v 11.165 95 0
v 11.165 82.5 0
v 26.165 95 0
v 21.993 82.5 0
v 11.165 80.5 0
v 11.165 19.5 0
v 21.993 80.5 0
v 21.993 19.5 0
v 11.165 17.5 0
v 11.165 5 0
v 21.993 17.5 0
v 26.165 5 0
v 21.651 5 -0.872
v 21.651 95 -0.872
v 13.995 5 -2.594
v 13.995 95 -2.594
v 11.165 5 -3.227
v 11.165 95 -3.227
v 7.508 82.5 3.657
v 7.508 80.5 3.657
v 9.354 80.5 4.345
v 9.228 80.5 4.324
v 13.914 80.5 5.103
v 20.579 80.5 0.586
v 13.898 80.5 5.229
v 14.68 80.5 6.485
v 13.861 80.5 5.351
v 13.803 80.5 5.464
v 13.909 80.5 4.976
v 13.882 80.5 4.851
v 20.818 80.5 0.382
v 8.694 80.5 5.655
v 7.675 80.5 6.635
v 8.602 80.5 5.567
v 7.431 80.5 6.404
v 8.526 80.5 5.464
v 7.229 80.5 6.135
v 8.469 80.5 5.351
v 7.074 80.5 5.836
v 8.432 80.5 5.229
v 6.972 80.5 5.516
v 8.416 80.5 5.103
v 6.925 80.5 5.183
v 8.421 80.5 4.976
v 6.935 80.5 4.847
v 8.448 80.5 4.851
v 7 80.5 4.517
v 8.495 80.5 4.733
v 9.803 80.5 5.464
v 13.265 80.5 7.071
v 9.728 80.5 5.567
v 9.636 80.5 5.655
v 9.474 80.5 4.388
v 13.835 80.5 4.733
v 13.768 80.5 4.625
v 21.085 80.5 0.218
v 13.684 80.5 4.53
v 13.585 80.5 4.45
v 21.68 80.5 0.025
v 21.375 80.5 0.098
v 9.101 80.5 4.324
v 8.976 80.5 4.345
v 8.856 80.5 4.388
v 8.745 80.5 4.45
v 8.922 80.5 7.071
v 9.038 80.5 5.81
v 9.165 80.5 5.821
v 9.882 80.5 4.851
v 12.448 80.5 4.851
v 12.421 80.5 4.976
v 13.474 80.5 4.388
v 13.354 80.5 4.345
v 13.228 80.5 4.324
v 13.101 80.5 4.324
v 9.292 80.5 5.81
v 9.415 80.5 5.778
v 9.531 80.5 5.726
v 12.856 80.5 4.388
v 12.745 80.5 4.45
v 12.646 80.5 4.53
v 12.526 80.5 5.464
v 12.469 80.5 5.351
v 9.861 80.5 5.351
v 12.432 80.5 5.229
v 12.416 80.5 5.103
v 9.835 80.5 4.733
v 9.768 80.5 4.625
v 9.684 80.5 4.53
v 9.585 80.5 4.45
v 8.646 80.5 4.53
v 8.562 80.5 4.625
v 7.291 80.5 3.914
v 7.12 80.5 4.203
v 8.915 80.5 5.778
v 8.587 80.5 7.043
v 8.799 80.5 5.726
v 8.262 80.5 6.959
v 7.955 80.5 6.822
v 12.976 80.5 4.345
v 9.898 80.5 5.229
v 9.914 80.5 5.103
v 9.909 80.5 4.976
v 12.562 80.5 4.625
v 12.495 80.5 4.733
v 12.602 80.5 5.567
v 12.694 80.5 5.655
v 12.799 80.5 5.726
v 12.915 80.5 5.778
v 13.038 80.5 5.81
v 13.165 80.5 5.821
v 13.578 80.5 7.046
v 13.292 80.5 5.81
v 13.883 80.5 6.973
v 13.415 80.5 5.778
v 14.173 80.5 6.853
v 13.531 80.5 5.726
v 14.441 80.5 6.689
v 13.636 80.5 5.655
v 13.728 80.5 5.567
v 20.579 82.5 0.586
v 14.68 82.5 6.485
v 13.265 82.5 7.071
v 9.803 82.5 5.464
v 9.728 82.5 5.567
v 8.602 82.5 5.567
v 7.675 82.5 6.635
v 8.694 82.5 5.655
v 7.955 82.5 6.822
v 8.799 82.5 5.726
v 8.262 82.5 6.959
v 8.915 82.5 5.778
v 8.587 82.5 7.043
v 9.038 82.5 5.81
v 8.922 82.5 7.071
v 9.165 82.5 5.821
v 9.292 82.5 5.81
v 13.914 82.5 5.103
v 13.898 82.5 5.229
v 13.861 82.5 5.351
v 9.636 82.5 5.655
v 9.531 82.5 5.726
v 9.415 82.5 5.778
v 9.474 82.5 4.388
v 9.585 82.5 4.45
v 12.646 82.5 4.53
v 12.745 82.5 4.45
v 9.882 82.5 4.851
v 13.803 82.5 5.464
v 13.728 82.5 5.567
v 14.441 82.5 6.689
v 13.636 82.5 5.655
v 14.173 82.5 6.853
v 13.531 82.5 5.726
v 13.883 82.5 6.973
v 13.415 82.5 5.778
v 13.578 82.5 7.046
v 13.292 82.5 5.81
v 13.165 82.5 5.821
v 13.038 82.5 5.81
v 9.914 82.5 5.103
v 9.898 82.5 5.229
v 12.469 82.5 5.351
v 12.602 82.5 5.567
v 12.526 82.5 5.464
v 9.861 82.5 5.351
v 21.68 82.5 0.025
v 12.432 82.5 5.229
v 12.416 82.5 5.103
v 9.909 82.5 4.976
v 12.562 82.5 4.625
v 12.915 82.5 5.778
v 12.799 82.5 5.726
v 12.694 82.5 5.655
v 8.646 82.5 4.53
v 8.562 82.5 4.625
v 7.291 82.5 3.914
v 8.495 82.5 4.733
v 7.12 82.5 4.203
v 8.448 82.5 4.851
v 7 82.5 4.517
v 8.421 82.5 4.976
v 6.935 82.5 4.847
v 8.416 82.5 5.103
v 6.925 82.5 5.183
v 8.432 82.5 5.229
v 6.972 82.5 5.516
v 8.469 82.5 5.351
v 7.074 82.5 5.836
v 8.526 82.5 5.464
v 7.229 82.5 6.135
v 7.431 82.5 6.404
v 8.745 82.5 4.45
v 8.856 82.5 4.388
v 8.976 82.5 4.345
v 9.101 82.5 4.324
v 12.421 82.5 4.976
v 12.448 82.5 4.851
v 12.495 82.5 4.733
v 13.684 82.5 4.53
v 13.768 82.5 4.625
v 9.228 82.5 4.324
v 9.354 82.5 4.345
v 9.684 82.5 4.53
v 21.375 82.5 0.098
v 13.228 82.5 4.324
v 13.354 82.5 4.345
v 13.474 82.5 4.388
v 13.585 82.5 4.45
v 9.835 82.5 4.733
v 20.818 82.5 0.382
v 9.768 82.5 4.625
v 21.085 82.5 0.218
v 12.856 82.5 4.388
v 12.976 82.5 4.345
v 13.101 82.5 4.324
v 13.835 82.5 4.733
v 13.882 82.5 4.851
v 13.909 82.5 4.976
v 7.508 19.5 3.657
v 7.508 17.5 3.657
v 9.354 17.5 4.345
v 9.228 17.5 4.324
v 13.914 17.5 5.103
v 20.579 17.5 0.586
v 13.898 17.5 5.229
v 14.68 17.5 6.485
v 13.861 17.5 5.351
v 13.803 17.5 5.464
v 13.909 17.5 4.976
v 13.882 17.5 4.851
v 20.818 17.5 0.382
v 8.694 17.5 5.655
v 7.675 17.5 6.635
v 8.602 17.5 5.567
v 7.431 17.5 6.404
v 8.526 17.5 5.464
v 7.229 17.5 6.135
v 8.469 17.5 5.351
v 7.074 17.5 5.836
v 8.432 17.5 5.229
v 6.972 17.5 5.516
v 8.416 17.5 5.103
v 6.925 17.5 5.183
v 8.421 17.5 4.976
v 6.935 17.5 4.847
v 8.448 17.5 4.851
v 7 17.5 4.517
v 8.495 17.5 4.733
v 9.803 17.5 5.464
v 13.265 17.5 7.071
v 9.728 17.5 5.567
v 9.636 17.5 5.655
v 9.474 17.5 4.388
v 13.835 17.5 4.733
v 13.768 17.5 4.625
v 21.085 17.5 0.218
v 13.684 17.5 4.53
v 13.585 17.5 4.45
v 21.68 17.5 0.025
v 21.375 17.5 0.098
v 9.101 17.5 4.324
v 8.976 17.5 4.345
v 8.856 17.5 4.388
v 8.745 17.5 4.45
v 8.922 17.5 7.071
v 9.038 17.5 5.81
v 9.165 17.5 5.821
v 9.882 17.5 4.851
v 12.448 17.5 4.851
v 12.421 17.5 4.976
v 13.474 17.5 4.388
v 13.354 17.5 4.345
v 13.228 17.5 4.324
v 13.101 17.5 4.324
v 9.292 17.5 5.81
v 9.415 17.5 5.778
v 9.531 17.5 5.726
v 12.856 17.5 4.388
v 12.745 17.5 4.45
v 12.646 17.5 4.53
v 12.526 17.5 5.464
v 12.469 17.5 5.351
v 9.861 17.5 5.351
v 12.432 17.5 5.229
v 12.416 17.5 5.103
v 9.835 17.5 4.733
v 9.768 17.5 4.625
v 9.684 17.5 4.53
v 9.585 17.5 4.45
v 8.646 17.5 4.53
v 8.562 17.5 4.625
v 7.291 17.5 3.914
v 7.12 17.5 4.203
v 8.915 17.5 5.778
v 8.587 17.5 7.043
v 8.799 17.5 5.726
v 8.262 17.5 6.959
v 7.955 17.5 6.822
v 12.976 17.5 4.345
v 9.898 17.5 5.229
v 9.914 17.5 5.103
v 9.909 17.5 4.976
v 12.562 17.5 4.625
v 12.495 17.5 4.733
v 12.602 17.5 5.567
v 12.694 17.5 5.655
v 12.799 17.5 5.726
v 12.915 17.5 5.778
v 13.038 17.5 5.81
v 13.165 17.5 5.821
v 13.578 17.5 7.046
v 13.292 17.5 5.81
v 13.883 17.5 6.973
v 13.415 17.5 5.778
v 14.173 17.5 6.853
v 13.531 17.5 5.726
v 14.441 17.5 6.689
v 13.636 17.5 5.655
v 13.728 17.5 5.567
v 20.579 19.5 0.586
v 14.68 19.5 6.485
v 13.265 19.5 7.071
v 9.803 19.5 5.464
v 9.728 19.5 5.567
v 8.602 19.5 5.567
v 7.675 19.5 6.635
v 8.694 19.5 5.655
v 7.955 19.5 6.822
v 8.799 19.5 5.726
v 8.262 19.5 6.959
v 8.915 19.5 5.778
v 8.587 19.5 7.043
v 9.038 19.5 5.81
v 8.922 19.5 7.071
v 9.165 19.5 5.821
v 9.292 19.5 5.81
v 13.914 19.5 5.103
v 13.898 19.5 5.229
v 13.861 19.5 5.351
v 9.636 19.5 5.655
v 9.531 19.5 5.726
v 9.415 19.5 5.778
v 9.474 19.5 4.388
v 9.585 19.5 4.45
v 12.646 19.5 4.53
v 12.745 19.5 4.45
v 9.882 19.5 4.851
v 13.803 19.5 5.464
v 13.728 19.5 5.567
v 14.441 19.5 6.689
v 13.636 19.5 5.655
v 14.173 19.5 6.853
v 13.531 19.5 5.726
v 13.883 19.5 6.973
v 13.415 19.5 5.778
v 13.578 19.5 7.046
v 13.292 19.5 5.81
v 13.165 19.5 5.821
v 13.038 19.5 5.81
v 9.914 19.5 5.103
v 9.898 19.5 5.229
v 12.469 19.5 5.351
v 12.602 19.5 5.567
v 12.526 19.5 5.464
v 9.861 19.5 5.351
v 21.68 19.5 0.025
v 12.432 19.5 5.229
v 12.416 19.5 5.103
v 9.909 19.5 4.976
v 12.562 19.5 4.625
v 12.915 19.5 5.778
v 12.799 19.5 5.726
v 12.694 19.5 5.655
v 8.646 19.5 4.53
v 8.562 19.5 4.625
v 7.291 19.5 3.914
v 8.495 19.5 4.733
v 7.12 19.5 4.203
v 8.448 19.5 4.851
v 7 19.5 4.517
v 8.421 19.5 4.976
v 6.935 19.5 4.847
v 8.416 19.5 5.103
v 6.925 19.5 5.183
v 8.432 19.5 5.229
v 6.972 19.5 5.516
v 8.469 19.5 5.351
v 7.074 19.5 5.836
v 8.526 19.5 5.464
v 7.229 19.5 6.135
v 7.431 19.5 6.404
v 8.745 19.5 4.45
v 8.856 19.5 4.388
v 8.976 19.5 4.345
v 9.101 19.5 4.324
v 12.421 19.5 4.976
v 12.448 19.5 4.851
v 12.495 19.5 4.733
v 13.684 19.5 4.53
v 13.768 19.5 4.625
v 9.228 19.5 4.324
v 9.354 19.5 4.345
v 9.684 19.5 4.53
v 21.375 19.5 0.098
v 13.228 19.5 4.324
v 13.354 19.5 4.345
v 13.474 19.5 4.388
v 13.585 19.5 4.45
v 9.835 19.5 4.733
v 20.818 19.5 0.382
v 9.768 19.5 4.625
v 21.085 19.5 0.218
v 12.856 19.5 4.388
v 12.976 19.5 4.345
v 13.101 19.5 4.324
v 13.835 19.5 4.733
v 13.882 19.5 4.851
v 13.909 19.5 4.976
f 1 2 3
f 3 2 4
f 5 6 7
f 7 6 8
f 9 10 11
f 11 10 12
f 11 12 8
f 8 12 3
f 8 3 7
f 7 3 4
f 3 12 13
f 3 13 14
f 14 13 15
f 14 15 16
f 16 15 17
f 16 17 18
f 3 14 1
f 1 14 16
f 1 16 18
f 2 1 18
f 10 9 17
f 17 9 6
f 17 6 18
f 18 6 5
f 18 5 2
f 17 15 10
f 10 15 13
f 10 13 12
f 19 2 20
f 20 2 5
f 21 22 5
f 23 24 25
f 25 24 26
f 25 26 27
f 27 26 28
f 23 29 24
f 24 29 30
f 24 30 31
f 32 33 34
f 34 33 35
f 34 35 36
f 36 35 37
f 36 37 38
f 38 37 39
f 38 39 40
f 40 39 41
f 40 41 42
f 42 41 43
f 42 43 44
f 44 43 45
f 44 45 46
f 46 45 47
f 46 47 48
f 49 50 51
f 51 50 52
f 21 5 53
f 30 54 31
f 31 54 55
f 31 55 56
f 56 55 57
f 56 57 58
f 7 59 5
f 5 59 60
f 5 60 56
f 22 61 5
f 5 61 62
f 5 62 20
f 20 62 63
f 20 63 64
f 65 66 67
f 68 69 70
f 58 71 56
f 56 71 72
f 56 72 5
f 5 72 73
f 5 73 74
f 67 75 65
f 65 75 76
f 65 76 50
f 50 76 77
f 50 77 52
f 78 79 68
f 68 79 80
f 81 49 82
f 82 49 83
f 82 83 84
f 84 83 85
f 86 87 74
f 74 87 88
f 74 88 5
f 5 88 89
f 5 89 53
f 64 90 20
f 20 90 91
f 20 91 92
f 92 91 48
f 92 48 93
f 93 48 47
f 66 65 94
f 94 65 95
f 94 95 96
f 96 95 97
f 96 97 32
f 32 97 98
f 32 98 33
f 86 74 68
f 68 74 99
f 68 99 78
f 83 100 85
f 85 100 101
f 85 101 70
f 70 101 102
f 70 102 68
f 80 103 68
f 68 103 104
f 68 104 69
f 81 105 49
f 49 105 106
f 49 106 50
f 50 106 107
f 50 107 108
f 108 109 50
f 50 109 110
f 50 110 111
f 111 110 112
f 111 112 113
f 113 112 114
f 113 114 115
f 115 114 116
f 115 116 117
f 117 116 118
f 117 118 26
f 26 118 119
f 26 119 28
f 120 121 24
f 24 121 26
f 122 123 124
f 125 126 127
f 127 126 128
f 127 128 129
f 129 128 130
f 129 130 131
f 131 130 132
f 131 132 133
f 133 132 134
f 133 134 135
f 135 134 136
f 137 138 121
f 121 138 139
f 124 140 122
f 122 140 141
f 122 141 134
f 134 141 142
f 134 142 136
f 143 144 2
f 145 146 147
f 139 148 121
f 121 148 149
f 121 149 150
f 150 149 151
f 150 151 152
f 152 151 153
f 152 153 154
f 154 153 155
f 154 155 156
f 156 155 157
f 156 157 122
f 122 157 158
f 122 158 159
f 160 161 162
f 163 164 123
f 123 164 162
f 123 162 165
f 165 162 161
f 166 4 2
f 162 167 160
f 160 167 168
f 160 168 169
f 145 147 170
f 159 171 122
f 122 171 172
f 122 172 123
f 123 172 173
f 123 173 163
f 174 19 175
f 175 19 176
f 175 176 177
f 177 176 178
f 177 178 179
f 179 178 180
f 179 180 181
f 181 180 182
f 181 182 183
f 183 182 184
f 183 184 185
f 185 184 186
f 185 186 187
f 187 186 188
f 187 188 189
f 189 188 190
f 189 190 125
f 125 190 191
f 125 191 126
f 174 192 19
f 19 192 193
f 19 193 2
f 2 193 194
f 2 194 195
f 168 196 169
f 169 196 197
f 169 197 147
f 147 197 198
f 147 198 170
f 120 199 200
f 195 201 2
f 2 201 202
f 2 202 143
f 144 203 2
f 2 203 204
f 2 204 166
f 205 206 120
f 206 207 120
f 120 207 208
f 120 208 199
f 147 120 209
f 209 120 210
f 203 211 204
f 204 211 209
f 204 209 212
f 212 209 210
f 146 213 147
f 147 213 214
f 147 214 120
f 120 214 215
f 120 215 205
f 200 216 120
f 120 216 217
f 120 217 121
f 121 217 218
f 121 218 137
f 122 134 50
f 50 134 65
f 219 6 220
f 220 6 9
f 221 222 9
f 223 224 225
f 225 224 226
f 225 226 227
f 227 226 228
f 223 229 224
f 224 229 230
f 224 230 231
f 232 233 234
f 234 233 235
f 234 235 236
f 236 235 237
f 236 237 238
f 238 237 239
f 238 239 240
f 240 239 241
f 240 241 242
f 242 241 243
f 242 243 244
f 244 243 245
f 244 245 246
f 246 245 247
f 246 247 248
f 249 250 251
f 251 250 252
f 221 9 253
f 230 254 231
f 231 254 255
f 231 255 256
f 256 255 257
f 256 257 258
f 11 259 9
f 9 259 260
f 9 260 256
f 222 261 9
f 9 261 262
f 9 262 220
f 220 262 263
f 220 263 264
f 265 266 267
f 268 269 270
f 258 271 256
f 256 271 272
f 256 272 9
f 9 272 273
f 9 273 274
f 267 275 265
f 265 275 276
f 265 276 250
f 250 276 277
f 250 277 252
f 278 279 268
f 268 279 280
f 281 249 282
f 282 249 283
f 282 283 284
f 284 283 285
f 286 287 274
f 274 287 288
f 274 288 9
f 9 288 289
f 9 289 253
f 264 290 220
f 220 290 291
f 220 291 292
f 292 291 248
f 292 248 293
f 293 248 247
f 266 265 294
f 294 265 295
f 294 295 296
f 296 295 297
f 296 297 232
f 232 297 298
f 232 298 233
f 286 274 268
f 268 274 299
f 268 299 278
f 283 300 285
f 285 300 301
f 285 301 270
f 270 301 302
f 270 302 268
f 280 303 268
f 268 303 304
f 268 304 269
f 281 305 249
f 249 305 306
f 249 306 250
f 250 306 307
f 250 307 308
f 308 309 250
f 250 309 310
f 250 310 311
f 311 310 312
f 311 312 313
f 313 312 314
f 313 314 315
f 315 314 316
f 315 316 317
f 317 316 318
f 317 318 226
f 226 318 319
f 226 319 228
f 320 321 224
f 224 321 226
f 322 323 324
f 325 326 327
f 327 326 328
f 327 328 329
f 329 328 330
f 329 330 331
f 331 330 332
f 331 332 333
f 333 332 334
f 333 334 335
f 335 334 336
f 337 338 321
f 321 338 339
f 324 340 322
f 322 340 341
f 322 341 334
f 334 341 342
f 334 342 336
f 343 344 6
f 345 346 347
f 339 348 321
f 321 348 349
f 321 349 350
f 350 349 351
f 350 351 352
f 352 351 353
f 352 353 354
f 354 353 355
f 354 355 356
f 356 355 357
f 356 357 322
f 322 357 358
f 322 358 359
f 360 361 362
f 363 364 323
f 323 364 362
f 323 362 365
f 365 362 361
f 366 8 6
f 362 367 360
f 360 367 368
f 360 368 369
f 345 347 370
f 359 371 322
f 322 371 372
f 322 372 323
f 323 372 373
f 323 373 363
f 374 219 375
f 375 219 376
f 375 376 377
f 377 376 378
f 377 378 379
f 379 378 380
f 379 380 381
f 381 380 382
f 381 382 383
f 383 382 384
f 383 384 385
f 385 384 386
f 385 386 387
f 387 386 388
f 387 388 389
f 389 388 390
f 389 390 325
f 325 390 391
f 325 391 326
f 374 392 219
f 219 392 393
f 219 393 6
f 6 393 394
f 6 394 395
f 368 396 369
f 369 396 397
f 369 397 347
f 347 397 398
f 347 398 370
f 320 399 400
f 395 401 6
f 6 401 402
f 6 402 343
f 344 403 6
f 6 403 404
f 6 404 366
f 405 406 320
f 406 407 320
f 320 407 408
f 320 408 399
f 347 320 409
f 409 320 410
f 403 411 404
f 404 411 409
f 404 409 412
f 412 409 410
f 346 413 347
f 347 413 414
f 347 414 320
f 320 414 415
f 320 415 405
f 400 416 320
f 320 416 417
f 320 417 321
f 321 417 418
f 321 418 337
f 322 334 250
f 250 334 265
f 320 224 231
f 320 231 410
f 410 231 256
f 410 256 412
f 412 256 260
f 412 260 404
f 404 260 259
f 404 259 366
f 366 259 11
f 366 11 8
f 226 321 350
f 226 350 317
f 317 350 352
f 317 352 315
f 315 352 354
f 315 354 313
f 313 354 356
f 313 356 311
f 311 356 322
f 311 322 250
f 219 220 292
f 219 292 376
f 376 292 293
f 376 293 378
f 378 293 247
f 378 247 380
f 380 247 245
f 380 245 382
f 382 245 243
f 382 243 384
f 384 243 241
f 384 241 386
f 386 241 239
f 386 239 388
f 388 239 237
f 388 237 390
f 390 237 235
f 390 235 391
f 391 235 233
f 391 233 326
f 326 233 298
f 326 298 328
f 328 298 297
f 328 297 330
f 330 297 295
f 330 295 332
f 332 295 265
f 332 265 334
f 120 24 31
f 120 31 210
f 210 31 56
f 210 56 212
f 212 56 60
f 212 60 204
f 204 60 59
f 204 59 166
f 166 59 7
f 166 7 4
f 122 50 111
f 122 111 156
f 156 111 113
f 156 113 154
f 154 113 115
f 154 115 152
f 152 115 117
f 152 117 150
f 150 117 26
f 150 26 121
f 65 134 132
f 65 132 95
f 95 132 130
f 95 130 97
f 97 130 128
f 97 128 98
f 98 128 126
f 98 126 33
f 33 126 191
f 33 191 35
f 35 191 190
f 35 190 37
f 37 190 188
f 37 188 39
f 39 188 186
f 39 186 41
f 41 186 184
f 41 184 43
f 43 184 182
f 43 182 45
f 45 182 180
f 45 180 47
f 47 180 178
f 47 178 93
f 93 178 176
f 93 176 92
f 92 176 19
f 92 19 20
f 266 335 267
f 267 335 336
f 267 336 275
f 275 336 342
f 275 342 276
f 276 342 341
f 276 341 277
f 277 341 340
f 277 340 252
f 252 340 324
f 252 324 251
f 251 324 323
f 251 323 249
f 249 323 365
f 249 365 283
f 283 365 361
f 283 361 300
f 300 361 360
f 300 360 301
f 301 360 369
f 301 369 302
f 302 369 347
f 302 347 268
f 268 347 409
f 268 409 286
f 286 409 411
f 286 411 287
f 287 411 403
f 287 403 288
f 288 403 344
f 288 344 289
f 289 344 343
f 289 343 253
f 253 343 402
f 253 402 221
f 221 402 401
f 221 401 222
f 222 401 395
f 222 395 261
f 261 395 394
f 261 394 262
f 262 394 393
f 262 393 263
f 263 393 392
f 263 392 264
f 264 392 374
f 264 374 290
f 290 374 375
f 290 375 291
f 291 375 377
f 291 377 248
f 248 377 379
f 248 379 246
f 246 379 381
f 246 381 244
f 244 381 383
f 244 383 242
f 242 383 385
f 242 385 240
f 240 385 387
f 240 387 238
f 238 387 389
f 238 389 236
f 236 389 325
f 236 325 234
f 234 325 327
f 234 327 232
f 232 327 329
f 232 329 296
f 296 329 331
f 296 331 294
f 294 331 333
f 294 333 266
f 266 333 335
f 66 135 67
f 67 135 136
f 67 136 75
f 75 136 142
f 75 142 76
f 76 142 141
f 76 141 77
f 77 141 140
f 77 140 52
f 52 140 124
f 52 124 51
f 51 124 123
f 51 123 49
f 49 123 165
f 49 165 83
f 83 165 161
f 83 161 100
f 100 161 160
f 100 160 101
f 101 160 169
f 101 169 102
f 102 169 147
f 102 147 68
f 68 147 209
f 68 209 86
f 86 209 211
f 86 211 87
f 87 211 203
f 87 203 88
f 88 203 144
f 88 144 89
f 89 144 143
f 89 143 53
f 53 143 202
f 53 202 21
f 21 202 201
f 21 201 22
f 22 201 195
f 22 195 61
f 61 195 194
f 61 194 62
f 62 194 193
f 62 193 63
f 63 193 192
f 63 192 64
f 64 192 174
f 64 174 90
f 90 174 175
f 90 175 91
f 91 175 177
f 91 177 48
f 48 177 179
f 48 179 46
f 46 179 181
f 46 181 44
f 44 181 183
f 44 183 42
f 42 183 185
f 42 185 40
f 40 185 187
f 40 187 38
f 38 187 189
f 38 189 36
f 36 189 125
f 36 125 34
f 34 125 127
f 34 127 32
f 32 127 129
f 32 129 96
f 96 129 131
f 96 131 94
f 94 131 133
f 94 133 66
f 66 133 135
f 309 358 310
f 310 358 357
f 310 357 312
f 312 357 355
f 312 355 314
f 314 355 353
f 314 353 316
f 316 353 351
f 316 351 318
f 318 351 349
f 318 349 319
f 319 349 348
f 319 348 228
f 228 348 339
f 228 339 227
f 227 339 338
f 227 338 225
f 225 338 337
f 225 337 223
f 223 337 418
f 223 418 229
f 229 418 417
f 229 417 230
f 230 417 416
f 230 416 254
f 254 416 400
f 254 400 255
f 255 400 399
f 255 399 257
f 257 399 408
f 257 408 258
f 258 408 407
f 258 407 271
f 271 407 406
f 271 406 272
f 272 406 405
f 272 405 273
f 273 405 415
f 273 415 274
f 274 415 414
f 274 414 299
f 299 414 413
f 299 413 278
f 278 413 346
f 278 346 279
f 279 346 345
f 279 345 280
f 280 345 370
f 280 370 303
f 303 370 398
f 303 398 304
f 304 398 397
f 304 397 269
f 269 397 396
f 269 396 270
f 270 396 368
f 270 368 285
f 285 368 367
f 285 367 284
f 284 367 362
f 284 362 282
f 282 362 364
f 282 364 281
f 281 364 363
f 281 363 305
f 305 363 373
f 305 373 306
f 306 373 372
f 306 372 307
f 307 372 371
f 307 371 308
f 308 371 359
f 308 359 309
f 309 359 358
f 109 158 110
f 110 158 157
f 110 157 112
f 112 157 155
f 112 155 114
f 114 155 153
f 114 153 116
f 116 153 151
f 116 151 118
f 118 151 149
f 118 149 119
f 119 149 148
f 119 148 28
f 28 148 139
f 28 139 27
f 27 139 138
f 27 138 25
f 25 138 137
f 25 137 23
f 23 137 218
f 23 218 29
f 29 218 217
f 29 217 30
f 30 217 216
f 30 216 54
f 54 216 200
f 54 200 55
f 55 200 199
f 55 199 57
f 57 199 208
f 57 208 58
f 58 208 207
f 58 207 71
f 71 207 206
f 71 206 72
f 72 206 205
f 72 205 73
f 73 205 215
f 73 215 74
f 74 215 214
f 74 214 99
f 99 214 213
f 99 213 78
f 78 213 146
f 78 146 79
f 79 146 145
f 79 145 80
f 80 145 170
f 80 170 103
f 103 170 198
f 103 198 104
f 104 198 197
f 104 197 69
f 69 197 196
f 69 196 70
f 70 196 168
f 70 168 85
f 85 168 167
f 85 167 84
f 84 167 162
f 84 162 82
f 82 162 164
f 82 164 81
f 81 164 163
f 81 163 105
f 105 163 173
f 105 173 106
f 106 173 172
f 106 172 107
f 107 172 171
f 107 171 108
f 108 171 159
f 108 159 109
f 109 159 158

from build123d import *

# Parameters (mm, degrees)
BOSS_EXTRUDE1_DEPTH = 100
CUT_EXTRUDE4_DEPTH  = 100
SKETCH4_W           = 10
SKETCH4_H           = 2
BOSS_EXTRUDE2_DEPTH = 10
FILLET2_R           = 2
SKETCH6_R           = 0.75
CUT_EXTRUDE5_DEPTH  = 110


with BuildPart() as part:
    # Sketch1 → Boss-Extrude1 (new body)
    with BuildSketch(Plane(origin=(0, 0, 0), x_dir=(1, 0, 0), z_dir=(0, 1, 0))):
        with BuildLine():
            Line((-23.835160585, 0), (26.164839415, 0))
            add(Edge.make_bspline(
                [(-24.267578895, 1.256220546), (-22.278212262, 3.553586128), (-18.738393104, 4.793268312), (-8.850120496, 5.774851838), (4.13271293, 5.525012752), (19.211918986, 1.162580188), (26.164839415, 0)],
                knots=[0.021997225, 0.021997225, 0.021997225, 0.021997225, 0.155271246, 0.206186057, 0.531145331, 1, 1, 1, 1], degree=3))
            add(Edge.make_bspline(
                [(-24.267578895, 1.256220546), (-25.367081291, 0.124338635), (-23.835160585, 0)],
                knots=[0, 0, 0, 1, 1, 1], degree=2))
        make_face()
    extrude(amount=BOSS_EXTRUDE1_DEPTH)

    # Sketch2 → Cut-Extrude4 (cut)
    with BuildSketch(Plane.XY.offset(10)):
        Polygon((26.164839415, 95), (11.164839415, 95), (11.164839415, 5), (26.164839415, 5), (26.164839415, 0), (-24.726990199, 0), (-24.726990199, 100), (26.164839415, 100), align=None)
    extrude(amount=-CUT_EXTRUDE4_DEPTH, mode=Mode.SUBTRACT)

    # Sketch4 → Boss-Extrude2 (add, along a direction that is not the sketch's normal)
    with BuildSketch(Plane.XY):
        with Locations((16.164839415, 81.5)):
            Rectangle(SKETCH4_W, SKETCH4_H)
        with Locations((16.164839415, 18.5)):
            Rectangle(SKETCH4_W, SKETCH4_H)
    extrude(amount=BOSS_EXTRUDE2_DEPTH, dir=(-0.7071067811865557, 0, 0.7071067811865395))

    # Fillet2
    fillet2_edges = [part.edges().sort_by_distance(p)[0] for p in [
        (21.164839415, 18.5, 0),
        (14.093771603, 18.5, 7.071067812),
        (4.093771603, 18.5, 7.071067812),
        (21.164839415, 81.5, 0),
        (14.093771603, 81.5, 7.071067812),
        (4.093771603, 81.5, 7.071067812),
    ]]
    fillet(fillet2_edges, radius=FILLET2_R)

    # Sketch6 → Cut-Extrude5 (cut)
    with BuildSketch(Plane(origin=(0, 82.5, 0), x_dir=(1, 0, 0), z_dir=(0, 1, 0))):
        with Locations(Location((9.164839415, -5.071067812, 0), (0, 0, 270))):
            Circle(SKETCH6_R)
        with Locations(Location((13.164839415, -5.071067812, 0), (0, 0, 270))):
            Circle(SKETCH6_R)
    extrude(amount=-CUT_EXTRUDE5_DEPTH, mode=Mode.SUBTRACT)


solid = part.part
